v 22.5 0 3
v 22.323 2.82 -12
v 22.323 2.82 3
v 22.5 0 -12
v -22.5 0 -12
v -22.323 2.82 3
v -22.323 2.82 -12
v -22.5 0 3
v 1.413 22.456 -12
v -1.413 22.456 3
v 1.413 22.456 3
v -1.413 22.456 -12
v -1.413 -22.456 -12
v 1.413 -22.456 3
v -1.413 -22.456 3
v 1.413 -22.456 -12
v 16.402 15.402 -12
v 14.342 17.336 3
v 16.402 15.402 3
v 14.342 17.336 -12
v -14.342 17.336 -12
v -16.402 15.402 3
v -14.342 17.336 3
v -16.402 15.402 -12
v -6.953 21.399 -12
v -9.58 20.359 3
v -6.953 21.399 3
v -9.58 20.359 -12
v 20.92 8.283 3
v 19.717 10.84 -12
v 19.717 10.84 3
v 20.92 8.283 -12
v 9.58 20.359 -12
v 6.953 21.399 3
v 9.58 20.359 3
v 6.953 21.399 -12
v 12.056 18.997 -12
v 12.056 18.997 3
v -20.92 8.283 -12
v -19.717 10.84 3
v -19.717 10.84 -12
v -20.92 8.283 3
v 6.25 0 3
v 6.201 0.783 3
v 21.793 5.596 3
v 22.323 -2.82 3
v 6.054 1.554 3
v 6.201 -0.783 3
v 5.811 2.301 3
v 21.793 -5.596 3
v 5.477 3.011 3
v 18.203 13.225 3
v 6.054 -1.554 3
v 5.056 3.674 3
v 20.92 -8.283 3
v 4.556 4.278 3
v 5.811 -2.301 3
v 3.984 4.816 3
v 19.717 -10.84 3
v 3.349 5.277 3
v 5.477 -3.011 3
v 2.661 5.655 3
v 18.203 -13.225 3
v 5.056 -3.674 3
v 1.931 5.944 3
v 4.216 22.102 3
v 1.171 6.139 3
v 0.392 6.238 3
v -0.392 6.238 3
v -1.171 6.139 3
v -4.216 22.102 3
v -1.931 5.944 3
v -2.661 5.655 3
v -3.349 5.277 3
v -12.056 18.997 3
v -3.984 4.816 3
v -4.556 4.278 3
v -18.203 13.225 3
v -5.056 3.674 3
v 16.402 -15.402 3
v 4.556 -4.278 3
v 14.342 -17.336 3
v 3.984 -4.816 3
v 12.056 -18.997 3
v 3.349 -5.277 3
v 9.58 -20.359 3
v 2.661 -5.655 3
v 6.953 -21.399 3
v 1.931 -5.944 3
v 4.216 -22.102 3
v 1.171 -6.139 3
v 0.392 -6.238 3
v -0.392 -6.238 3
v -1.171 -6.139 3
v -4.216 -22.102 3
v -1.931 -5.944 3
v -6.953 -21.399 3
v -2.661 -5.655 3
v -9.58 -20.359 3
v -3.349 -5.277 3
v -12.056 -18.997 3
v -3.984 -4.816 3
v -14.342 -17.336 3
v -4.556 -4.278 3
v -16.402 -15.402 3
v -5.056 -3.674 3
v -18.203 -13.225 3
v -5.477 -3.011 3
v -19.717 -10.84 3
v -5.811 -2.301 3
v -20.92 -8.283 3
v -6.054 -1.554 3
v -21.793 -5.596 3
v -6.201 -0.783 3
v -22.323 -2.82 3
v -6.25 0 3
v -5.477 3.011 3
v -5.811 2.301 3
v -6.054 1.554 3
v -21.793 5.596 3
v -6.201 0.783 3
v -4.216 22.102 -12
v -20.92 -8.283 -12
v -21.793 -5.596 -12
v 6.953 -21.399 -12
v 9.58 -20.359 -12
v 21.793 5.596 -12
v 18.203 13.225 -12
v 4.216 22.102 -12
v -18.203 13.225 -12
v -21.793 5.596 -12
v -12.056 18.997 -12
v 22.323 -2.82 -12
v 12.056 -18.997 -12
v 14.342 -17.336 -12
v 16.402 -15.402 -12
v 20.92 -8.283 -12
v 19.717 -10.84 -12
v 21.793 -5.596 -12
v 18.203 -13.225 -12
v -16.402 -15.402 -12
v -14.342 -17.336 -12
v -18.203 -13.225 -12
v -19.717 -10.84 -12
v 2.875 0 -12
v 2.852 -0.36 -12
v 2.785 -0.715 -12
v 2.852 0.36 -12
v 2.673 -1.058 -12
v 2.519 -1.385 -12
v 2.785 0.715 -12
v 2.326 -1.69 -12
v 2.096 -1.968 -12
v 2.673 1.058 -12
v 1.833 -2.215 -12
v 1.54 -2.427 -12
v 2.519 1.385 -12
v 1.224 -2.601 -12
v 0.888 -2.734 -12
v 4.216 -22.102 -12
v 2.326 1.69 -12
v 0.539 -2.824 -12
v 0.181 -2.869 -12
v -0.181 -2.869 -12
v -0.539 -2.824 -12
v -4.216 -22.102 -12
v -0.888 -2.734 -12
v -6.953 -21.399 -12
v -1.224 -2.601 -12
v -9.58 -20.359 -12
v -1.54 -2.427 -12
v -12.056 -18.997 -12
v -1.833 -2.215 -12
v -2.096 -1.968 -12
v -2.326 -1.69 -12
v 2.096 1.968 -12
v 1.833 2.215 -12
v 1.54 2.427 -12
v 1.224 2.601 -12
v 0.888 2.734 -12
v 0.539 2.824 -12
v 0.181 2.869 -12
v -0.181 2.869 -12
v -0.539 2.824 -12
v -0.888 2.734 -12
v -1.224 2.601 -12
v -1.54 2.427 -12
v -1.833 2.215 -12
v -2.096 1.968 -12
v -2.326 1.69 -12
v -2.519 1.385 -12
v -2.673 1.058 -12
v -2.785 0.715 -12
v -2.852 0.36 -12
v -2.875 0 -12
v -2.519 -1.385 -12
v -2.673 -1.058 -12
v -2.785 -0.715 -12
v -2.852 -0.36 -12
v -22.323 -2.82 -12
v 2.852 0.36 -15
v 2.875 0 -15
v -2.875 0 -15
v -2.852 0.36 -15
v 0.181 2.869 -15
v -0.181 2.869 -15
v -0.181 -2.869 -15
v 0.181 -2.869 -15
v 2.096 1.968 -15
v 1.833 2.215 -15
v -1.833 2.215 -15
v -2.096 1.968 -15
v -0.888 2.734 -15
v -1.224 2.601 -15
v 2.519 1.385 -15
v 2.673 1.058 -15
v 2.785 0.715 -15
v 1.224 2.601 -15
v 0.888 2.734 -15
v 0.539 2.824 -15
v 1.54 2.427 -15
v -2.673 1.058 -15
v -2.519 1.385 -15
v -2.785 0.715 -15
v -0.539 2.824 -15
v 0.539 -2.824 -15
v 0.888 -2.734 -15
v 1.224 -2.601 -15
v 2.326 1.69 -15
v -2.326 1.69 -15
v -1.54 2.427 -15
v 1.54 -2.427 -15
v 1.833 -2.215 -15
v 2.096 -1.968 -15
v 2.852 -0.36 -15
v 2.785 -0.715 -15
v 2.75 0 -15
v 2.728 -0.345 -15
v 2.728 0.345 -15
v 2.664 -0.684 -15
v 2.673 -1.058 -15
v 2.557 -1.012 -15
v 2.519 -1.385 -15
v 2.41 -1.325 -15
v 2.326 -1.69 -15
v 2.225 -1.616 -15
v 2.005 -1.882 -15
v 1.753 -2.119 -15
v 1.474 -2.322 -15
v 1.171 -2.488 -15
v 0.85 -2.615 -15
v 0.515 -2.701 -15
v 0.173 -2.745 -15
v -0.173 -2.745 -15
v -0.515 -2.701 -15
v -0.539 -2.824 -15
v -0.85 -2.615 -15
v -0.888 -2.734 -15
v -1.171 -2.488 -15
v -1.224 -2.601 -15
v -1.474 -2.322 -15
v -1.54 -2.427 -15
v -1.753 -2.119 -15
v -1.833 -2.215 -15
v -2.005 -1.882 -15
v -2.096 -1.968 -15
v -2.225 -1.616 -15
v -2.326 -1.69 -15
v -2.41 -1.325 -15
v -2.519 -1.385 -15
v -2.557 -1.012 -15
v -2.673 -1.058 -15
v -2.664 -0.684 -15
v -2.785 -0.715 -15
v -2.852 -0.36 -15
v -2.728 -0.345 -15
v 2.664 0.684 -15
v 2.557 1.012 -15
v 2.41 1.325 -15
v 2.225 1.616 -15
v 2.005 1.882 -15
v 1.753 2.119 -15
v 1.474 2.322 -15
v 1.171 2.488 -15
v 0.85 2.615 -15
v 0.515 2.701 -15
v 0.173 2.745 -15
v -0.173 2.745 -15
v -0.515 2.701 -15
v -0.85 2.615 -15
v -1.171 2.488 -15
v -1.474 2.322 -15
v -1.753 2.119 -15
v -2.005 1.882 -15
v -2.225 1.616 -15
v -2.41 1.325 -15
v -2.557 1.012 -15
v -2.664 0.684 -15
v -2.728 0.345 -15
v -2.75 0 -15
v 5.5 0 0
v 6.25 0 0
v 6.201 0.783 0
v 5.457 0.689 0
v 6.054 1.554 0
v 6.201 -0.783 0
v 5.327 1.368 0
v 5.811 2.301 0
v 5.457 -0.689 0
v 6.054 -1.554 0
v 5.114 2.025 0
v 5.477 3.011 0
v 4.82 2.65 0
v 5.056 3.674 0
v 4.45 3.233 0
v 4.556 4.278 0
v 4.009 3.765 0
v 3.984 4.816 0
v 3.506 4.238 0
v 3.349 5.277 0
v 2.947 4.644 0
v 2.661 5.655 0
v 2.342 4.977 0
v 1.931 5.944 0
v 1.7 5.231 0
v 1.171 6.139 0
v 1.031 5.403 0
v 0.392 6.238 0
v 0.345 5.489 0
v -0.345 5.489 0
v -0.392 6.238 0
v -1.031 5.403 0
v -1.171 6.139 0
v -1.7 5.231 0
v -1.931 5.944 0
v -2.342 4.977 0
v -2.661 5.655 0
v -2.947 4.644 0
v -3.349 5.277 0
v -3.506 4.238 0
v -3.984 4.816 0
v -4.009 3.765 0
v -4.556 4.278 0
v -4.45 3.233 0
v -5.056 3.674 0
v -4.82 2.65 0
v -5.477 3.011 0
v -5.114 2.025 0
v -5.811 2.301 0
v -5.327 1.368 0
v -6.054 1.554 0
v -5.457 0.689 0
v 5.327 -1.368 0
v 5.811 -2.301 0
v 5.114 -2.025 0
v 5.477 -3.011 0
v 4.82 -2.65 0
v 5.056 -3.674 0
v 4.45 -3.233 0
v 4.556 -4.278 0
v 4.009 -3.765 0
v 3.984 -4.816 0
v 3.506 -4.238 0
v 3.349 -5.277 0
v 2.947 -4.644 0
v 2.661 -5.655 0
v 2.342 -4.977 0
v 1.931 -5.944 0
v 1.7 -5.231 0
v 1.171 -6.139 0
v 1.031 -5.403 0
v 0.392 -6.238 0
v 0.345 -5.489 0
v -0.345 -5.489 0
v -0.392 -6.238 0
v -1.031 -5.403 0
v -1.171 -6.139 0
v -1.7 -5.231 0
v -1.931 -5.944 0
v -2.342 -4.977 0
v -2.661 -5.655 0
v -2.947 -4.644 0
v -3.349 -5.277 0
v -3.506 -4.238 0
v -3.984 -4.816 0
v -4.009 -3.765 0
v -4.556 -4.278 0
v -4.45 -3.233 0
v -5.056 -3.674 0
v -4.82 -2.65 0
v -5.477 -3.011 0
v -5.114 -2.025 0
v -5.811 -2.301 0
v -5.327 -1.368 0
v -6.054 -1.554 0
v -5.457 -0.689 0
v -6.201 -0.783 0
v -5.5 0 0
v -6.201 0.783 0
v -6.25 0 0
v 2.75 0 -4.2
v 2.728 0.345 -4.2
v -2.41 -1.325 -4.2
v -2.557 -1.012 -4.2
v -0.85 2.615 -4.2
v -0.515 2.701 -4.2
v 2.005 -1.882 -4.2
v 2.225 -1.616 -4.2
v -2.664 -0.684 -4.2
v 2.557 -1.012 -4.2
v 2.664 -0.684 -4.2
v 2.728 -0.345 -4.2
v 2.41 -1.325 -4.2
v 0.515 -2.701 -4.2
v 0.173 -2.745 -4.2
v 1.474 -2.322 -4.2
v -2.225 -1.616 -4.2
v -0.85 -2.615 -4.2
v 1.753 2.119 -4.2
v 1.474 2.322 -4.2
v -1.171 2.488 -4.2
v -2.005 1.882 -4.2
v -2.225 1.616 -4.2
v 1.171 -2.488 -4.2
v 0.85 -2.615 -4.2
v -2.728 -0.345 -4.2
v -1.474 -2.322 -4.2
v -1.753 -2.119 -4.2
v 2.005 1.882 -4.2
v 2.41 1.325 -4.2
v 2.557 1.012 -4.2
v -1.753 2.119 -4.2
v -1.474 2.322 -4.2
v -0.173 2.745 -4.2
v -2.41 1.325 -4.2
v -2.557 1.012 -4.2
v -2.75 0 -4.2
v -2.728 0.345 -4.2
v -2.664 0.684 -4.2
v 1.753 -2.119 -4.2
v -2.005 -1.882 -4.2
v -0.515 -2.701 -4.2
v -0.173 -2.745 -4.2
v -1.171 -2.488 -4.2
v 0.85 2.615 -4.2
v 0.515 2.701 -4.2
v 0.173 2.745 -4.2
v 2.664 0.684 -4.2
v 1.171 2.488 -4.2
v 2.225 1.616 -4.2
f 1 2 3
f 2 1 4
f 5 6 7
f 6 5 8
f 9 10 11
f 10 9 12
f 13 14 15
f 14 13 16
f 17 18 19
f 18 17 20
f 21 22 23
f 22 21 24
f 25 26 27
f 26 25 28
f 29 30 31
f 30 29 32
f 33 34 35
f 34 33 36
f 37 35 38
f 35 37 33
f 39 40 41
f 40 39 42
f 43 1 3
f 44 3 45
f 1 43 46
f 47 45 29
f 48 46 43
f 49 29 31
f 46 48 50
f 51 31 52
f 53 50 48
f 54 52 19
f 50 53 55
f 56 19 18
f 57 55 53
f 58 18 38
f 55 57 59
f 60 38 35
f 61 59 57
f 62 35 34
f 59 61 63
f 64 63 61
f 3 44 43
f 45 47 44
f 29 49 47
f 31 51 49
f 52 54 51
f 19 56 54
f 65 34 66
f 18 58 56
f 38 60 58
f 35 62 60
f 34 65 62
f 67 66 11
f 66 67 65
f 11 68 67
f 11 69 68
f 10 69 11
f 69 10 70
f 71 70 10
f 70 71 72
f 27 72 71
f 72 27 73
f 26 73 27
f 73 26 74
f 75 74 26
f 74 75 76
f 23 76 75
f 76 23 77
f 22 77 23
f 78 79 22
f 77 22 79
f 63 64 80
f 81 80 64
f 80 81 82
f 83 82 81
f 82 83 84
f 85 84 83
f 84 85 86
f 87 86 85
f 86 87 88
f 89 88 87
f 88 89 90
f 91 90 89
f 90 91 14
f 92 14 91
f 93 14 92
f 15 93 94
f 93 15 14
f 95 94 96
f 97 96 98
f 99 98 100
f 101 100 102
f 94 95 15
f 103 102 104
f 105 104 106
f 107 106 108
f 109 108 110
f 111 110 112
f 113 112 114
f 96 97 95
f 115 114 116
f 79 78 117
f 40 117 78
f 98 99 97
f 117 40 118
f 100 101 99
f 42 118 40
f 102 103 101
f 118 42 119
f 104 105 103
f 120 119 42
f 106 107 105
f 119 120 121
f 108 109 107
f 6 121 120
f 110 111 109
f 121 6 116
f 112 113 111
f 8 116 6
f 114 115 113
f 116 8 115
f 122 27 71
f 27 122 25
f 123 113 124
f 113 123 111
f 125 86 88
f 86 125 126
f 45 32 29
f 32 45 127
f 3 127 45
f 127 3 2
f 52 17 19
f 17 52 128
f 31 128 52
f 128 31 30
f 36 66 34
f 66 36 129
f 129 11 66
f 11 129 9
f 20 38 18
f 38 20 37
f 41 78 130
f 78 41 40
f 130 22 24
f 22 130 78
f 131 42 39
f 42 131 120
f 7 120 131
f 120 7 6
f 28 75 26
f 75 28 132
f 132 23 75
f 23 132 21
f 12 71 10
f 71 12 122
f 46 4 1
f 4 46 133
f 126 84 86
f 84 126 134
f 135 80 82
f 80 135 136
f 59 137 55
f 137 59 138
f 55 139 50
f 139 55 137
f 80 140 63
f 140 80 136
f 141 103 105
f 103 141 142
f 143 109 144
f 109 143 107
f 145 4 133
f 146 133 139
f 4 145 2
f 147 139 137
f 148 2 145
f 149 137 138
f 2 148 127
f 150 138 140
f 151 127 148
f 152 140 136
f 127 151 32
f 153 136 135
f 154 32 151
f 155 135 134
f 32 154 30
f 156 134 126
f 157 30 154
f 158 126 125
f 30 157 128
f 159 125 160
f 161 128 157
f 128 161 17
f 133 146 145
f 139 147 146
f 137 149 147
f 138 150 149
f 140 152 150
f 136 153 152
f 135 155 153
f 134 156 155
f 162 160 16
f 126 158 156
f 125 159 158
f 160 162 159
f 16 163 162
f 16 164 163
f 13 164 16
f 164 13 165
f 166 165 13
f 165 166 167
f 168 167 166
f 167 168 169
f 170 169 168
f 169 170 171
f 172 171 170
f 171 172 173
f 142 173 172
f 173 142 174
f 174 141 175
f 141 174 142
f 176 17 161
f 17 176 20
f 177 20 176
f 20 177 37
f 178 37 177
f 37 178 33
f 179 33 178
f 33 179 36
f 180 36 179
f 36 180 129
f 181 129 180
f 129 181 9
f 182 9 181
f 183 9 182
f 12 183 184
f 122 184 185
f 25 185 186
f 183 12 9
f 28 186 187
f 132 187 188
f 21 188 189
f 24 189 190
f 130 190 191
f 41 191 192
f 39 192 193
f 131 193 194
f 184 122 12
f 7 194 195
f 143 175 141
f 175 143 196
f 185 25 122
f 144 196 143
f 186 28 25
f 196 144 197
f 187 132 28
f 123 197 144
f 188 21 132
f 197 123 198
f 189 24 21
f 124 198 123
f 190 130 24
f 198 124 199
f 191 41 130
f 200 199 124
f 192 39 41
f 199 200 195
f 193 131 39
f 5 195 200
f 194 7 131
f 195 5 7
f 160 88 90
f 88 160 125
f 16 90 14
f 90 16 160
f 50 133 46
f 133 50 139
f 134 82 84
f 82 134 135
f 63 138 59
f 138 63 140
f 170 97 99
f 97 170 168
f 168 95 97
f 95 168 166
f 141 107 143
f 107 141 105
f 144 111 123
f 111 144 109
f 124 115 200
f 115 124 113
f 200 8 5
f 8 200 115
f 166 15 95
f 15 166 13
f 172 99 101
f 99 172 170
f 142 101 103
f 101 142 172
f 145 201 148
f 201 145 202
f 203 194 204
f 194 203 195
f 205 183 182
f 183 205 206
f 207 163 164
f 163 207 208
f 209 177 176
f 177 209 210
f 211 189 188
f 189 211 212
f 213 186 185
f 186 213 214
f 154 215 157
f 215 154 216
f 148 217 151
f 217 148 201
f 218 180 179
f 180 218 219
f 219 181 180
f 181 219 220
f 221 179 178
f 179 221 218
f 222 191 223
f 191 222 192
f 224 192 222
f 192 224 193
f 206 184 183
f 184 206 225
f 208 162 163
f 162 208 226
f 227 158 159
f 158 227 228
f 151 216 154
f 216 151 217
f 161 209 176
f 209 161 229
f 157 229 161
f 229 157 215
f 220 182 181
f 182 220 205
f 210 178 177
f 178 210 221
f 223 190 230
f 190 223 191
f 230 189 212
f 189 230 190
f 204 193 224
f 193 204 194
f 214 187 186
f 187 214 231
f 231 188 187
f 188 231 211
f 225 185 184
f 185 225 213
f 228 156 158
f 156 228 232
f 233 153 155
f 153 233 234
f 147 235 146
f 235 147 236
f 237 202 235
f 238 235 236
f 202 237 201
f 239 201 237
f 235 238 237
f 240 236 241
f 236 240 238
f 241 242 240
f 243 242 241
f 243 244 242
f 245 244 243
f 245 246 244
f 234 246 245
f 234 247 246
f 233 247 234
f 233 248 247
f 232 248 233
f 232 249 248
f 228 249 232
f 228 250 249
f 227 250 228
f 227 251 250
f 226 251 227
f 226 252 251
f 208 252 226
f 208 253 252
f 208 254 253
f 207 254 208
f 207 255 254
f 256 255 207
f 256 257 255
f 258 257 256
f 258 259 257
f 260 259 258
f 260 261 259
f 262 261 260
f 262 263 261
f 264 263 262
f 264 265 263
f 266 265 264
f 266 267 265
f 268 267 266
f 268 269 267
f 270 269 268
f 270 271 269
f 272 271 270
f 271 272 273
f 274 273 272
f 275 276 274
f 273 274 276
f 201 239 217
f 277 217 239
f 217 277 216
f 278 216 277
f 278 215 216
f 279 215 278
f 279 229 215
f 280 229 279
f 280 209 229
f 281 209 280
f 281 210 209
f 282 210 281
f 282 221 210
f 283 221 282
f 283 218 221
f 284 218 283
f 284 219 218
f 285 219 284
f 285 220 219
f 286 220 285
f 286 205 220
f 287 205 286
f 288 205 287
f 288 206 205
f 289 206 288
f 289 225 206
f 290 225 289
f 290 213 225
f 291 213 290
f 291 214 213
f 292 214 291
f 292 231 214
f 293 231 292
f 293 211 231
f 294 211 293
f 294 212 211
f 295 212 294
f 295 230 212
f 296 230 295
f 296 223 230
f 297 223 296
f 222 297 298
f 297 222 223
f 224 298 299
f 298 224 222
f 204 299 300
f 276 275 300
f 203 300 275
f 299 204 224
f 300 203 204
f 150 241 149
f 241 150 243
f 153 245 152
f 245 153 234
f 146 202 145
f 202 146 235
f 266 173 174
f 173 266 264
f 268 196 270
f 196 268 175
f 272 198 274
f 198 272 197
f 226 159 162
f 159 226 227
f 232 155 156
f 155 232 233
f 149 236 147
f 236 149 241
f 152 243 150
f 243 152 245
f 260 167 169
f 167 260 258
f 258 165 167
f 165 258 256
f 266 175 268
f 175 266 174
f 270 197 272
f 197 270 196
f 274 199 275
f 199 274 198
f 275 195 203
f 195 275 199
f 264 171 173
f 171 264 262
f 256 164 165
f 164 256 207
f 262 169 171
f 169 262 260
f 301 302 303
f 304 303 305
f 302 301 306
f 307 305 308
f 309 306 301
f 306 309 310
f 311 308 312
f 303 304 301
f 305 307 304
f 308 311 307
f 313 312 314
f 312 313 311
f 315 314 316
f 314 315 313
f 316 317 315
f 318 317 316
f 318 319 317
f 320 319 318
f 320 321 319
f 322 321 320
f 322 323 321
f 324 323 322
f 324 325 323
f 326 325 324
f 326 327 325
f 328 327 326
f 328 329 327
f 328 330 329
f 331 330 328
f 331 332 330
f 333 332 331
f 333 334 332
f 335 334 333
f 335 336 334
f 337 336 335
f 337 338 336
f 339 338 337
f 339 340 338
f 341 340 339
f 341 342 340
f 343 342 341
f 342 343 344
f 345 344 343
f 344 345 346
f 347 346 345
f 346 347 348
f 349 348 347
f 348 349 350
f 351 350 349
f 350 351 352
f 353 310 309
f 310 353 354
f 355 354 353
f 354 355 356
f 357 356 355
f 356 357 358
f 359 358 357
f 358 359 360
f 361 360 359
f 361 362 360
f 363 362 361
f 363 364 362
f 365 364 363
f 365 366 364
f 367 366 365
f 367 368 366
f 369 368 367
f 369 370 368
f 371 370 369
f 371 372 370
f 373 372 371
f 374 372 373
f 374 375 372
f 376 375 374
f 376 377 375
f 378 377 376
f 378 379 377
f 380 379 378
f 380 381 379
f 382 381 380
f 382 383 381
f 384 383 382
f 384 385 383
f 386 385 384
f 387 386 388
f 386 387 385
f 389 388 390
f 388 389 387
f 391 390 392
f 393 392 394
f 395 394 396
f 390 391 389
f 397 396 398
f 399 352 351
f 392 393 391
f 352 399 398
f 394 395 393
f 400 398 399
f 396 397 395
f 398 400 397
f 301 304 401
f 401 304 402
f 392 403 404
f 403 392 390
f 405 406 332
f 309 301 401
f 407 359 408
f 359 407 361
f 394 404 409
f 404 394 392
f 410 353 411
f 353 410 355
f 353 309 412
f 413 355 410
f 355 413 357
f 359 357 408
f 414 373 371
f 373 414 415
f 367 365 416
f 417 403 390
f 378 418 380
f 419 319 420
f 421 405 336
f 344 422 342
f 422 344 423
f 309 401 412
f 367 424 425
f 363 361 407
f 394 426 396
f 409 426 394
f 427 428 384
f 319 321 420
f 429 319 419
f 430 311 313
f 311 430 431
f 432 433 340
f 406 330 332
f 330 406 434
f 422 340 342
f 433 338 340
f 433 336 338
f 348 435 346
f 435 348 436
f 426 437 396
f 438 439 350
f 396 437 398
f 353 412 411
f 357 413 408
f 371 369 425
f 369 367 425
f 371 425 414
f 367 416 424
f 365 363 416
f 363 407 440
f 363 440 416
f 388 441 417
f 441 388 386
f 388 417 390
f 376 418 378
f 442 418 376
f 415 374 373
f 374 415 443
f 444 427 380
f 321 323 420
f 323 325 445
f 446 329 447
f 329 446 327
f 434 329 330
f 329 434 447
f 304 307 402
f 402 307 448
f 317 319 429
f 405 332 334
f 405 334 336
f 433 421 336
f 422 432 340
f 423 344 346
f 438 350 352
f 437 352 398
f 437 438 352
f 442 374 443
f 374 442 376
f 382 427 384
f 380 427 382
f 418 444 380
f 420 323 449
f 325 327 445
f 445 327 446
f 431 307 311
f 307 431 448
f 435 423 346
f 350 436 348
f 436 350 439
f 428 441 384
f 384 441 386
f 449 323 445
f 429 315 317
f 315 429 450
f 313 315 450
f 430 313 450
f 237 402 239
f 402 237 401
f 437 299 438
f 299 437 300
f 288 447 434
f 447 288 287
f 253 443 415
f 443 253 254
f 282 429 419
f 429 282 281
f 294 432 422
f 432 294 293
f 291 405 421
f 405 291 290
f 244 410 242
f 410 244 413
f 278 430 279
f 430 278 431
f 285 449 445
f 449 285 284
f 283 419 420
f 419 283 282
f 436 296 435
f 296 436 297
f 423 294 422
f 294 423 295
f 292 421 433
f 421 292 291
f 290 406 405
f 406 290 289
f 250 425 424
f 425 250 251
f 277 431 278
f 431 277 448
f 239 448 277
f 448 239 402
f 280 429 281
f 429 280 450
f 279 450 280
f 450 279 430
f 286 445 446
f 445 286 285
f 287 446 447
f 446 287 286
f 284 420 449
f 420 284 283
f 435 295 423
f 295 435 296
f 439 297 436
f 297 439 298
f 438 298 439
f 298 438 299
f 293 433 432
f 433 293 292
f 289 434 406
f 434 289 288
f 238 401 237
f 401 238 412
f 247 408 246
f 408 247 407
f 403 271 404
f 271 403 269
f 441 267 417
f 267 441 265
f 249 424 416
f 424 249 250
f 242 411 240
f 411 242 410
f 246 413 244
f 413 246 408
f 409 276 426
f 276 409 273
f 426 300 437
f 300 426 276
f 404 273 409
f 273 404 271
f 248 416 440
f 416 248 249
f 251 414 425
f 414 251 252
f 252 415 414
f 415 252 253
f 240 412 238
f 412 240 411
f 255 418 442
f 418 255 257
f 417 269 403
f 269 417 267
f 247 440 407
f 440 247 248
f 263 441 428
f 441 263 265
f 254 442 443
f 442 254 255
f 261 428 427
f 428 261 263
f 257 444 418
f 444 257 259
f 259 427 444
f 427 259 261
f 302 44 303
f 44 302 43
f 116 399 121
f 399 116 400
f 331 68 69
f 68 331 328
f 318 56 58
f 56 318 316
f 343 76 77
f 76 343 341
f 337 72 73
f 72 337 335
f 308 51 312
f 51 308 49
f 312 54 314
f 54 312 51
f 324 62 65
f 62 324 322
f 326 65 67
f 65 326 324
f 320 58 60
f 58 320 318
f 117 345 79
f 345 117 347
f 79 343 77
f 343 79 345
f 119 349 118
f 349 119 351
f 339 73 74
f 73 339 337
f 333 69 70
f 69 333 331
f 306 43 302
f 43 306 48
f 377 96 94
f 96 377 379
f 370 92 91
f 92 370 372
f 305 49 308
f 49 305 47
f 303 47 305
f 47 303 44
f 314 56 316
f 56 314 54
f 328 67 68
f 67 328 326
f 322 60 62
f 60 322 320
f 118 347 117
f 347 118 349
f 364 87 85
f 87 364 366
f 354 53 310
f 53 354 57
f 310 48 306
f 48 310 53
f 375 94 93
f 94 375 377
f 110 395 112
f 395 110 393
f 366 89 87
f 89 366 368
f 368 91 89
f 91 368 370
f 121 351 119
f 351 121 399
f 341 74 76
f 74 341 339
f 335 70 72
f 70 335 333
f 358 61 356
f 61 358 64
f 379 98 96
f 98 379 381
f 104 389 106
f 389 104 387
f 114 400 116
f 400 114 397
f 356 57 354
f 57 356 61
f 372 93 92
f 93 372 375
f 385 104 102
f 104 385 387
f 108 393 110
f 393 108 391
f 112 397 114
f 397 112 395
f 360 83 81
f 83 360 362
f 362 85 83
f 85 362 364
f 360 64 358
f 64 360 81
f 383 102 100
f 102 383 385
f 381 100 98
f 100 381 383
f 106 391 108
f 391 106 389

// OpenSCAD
$fn = 50;

difference() {
	union() {
		translate(v = [0, 0, -12.0]) {
			cylinder(h = 15, r = 22.5);
		}
		#translate(v = [0, 0, -15.0]) {
			cylinder(h = 15, r = 2.875);
		}
	}
	union() {
		translate(v = [0, 0, 0]) {
			rotate(a = [0, 0, 0]) {
				difference() {
					union() {
						translate(v = [0, 0, -15.0]) {
							cylinder(h = 15, r = 2.25);
						}
						translate(v = [0, 0, -4.2]) {
							cylinder(h = 4.2, r1 = 2.75, r2 = 5.5);
						}
						translate(v = [0, 0, -15.0]) {
							cylinder(h = 15, r = 2.75);
						}
						translate(v = [0, 0, -15.0]) {
							cylinder(h = 15, r = 2.25);
						}
					}
					union();
				}
			}
		}
		#cylinder(h = 3, r = 6.25);
	}
}
